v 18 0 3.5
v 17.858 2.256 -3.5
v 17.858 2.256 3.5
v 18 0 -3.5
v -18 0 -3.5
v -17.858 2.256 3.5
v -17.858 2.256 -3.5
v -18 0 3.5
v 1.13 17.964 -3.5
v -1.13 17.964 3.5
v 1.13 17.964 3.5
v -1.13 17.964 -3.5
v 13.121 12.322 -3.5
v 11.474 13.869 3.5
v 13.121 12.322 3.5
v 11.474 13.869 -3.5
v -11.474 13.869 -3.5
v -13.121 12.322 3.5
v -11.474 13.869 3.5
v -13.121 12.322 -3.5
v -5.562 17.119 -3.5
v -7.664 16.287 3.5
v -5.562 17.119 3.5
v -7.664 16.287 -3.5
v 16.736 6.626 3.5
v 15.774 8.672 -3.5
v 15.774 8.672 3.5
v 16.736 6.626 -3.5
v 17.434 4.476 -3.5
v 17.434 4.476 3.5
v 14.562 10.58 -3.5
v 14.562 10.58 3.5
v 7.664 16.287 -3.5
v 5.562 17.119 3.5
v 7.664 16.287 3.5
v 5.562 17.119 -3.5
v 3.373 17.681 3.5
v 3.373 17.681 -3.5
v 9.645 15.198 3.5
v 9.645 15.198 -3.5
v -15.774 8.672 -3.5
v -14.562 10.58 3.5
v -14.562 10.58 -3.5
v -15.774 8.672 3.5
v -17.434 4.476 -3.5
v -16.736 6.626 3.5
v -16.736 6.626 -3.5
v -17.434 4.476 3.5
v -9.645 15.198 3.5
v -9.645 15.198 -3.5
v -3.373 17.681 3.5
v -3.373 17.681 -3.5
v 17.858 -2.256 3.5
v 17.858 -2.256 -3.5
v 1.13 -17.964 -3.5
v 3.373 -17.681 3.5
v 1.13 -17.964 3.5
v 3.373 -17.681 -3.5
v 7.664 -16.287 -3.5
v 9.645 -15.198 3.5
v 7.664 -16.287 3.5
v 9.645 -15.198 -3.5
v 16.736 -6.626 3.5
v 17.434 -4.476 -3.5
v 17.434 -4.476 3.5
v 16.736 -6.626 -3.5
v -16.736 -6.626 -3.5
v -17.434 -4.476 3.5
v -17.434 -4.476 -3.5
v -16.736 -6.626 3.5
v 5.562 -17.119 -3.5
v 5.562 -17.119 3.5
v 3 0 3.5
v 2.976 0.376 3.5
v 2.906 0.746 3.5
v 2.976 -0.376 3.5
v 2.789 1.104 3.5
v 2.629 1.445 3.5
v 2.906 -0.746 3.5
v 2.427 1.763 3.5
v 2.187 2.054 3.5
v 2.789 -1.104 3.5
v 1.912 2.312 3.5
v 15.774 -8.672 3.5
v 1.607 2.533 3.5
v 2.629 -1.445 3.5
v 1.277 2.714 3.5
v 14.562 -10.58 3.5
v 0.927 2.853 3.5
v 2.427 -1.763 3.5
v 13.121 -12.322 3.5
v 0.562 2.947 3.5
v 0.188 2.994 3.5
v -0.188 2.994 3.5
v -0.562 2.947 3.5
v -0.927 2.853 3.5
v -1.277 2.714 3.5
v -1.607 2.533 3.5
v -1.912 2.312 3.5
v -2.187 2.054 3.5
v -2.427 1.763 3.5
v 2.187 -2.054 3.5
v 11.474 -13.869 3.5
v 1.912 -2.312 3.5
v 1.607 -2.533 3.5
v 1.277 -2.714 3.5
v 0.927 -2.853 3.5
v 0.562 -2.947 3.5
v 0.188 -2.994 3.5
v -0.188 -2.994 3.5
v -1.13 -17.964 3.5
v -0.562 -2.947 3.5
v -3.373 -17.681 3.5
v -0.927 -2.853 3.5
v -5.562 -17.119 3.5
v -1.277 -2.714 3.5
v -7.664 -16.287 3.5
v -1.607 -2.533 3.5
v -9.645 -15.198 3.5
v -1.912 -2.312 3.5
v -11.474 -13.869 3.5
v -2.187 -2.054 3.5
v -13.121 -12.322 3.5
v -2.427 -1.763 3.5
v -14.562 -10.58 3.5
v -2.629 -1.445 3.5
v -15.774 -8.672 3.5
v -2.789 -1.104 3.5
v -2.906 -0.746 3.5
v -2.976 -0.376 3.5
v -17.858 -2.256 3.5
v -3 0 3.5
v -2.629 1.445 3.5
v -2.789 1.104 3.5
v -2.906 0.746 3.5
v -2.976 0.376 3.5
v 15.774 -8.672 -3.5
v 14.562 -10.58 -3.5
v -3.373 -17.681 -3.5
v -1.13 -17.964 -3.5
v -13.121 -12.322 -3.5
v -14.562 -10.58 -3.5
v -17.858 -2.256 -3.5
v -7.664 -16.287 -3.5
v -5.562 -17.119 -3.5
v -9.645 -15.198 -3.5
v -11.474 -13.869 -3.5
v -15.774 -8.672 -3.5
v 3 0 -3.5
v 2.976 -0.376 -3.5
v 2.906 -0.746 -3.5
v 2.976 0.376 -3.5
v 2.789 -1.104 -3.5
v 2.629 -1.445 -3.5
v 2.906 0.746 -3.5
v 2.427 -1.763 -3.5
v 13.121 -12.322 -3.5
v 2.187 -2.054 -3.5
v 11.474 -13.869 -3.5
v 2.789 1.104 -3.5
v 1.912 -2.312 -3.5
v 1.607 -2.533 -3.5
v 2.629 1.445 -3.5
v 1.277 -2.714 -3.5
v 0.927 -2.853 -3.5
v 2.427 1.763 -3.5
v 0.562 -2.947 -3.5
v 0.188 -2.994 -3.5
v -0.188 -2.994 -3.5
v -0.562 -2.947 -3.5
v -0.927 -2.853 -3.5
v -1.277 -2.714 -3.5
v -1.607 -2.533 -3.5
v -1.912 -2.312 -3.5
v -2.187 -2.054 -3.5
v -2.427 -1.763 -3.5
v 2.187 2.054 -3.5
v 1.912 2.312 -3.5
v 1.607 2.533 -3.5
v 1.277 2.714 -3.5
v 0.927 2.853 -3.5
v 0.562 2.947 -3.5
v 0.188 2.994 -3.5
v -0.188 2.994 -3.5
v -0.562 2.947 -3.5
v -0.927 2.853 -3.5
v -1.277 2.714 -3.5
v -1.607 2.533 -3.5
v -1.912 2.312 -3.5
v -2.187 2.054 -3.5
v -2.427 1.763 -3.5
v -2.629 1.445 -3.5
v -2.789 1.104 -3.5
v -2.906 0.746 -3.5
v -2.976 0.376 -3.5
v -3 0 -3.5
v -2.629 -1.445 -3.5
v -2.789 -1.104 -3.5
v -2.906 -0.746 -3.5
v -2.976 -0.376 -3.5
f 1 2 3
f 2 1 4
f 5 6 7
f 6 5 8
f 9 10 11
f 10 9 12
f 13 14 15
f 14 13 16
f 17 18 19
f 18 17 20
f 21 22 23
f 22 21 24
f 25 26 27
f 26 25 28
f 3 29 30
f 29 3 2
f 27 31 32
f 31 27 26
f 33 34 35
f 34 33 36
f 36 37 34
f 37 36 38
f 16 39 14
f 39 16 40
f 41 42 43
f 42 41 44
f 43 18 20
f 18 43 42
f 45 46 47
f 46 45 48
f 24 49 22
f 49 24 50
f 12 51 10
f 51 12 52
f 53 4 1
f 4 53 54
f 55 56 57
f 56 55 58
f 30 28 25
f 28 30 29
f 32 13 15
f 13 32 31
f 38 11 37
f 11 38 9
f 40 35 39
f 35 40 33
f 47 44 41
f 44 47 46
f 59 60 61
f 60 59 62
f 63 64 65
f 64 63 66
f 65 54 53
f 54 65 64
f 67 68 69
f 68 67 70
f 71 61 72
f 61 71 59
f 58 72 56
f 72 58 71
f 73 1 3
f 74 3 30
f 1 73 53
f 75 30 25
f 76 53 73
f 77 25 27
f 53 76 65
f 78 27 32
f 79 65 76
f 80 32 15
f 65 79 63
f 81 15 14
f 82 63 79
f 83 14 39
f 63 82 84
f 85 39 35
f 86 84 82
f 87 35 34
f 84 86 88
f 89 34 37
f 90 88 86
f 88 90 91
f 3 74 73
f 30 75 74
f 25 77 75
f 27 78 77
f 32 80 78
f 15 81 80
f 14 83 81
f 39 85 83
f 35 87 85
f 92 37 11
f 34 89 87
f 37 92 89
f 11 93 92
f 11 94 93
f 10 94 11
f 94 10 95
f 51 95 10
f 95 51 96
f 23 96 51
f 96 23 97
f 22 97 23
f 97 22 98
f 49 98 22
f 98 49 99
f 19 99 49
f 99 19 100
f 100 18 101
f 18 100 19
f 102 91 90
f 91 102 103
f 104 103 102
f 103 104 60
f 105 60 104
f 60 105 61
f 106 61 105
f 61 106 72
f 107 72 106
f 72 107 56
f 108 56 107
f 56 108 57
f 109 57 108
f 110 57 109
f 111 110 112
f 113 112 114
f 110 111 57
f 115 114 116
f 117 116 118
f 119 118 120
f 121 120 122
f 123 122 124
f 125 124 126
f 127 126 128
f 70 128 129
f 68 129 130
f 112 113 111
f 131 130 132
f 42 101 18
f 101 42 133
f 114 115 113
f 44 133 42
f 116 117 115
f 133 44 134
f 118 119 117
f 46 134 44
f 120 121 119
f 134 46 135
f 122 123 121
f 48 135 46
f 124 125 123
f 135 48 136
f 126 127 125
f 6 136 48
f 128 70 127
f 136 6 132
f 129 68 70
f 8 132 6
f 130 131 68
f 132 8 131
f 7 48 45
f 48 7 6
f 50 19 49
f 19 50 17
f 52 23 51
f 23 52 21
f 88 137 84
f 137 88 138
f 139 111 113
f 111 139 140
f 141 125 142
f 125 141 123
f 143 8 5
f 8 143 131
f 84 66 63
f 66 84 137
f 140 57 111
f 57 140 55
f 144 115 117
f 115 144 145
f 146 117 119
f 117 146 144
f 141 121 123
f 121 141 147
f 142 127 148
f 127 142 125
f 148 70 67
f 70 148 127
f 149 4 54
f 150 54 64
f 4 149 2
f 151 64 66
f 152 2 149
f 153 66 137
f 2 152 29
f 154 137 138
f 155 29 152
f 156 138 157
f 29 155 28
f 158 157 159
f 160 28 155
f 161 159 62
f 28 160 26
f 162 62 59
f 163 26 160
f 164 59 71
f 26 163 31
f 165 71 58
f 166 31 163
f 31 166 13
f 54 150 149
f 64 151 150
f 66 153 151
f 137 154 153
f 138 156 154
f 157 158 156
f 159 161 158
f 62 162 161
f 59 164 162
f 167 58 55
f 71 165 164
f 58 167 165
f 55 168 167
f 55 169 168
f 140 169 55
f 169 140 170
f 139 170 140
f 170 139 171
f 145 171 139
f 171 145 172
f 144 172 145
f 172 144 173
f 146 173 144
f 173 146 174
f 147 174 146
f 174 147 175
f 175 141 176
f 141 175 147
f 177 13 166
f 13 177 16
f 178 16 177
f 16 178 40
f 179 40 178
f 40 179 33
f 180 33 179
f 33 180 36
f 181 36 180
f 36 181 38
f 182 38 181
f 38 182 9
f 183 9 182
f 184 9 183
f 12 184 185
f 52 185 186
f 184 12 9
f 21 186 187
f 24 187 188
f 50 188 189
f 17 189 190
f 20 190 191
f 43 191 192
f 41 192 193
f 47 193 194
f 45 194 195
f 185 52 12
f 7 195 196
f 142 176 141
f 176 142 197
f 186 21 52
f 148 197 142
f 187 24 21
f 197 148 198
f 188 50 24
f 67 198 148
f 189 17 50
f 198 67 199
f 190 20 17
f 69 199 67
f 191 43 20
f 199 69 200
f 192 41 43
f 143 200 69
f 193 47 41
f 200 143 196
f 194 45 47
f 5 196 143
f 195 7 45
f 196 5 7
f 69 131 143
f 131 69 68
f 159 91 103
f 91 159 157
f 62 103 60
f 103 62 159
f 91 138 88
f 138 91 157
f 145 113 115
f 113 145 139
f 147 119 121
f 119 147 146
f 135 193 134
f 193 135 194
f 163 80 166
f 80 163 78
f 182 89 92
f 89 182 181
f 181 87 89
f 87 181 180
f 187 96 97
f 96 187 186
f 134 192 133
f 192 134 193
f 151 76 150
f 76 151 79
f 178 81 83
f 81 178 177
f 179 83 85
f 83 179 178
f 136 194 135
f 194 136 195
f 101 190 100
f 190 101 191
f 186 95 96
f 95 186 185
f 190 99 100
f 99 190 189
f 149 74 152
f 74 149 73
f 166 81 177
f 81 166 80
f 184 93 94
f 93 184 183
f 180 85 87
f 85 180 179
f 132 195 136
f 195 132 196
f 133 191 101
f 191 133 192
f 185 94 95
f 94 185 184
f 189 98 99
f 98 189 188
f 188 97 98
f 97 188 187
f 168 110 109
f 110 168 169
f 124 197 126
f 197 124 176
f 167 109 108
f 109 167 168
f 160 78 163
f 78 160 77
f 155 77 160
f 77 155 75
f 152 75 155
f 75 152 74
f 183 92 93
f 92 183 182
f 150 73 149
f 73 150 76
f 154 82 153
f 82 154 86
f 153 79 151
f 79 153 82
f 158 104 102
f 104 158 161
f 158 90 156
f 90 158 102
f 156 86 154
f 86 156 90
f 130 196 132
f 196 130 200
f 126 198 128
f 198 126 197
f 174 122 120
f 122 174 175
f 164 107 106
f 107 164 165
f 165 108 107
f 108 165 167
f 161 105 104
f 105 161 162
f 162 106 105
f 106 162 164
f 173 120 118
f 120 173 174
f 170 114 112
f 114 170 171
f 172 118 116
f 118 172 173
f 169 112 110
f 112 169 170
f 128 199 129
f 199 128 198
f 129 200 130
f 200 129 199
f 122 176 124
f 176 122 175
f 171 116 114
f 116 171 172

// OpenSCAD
$fn = 50;


difference() {
	union() {
		translate(v = [0, 0, -3.5000000000]) {
			cylinder(h = 7, r = 18.0000000000);
		}
	}
	union() {
		translate(v = [0, 0, -100.0000000000]) {
			cylinder(h = 200, r = 3.0000000000);
		}
	}
}
